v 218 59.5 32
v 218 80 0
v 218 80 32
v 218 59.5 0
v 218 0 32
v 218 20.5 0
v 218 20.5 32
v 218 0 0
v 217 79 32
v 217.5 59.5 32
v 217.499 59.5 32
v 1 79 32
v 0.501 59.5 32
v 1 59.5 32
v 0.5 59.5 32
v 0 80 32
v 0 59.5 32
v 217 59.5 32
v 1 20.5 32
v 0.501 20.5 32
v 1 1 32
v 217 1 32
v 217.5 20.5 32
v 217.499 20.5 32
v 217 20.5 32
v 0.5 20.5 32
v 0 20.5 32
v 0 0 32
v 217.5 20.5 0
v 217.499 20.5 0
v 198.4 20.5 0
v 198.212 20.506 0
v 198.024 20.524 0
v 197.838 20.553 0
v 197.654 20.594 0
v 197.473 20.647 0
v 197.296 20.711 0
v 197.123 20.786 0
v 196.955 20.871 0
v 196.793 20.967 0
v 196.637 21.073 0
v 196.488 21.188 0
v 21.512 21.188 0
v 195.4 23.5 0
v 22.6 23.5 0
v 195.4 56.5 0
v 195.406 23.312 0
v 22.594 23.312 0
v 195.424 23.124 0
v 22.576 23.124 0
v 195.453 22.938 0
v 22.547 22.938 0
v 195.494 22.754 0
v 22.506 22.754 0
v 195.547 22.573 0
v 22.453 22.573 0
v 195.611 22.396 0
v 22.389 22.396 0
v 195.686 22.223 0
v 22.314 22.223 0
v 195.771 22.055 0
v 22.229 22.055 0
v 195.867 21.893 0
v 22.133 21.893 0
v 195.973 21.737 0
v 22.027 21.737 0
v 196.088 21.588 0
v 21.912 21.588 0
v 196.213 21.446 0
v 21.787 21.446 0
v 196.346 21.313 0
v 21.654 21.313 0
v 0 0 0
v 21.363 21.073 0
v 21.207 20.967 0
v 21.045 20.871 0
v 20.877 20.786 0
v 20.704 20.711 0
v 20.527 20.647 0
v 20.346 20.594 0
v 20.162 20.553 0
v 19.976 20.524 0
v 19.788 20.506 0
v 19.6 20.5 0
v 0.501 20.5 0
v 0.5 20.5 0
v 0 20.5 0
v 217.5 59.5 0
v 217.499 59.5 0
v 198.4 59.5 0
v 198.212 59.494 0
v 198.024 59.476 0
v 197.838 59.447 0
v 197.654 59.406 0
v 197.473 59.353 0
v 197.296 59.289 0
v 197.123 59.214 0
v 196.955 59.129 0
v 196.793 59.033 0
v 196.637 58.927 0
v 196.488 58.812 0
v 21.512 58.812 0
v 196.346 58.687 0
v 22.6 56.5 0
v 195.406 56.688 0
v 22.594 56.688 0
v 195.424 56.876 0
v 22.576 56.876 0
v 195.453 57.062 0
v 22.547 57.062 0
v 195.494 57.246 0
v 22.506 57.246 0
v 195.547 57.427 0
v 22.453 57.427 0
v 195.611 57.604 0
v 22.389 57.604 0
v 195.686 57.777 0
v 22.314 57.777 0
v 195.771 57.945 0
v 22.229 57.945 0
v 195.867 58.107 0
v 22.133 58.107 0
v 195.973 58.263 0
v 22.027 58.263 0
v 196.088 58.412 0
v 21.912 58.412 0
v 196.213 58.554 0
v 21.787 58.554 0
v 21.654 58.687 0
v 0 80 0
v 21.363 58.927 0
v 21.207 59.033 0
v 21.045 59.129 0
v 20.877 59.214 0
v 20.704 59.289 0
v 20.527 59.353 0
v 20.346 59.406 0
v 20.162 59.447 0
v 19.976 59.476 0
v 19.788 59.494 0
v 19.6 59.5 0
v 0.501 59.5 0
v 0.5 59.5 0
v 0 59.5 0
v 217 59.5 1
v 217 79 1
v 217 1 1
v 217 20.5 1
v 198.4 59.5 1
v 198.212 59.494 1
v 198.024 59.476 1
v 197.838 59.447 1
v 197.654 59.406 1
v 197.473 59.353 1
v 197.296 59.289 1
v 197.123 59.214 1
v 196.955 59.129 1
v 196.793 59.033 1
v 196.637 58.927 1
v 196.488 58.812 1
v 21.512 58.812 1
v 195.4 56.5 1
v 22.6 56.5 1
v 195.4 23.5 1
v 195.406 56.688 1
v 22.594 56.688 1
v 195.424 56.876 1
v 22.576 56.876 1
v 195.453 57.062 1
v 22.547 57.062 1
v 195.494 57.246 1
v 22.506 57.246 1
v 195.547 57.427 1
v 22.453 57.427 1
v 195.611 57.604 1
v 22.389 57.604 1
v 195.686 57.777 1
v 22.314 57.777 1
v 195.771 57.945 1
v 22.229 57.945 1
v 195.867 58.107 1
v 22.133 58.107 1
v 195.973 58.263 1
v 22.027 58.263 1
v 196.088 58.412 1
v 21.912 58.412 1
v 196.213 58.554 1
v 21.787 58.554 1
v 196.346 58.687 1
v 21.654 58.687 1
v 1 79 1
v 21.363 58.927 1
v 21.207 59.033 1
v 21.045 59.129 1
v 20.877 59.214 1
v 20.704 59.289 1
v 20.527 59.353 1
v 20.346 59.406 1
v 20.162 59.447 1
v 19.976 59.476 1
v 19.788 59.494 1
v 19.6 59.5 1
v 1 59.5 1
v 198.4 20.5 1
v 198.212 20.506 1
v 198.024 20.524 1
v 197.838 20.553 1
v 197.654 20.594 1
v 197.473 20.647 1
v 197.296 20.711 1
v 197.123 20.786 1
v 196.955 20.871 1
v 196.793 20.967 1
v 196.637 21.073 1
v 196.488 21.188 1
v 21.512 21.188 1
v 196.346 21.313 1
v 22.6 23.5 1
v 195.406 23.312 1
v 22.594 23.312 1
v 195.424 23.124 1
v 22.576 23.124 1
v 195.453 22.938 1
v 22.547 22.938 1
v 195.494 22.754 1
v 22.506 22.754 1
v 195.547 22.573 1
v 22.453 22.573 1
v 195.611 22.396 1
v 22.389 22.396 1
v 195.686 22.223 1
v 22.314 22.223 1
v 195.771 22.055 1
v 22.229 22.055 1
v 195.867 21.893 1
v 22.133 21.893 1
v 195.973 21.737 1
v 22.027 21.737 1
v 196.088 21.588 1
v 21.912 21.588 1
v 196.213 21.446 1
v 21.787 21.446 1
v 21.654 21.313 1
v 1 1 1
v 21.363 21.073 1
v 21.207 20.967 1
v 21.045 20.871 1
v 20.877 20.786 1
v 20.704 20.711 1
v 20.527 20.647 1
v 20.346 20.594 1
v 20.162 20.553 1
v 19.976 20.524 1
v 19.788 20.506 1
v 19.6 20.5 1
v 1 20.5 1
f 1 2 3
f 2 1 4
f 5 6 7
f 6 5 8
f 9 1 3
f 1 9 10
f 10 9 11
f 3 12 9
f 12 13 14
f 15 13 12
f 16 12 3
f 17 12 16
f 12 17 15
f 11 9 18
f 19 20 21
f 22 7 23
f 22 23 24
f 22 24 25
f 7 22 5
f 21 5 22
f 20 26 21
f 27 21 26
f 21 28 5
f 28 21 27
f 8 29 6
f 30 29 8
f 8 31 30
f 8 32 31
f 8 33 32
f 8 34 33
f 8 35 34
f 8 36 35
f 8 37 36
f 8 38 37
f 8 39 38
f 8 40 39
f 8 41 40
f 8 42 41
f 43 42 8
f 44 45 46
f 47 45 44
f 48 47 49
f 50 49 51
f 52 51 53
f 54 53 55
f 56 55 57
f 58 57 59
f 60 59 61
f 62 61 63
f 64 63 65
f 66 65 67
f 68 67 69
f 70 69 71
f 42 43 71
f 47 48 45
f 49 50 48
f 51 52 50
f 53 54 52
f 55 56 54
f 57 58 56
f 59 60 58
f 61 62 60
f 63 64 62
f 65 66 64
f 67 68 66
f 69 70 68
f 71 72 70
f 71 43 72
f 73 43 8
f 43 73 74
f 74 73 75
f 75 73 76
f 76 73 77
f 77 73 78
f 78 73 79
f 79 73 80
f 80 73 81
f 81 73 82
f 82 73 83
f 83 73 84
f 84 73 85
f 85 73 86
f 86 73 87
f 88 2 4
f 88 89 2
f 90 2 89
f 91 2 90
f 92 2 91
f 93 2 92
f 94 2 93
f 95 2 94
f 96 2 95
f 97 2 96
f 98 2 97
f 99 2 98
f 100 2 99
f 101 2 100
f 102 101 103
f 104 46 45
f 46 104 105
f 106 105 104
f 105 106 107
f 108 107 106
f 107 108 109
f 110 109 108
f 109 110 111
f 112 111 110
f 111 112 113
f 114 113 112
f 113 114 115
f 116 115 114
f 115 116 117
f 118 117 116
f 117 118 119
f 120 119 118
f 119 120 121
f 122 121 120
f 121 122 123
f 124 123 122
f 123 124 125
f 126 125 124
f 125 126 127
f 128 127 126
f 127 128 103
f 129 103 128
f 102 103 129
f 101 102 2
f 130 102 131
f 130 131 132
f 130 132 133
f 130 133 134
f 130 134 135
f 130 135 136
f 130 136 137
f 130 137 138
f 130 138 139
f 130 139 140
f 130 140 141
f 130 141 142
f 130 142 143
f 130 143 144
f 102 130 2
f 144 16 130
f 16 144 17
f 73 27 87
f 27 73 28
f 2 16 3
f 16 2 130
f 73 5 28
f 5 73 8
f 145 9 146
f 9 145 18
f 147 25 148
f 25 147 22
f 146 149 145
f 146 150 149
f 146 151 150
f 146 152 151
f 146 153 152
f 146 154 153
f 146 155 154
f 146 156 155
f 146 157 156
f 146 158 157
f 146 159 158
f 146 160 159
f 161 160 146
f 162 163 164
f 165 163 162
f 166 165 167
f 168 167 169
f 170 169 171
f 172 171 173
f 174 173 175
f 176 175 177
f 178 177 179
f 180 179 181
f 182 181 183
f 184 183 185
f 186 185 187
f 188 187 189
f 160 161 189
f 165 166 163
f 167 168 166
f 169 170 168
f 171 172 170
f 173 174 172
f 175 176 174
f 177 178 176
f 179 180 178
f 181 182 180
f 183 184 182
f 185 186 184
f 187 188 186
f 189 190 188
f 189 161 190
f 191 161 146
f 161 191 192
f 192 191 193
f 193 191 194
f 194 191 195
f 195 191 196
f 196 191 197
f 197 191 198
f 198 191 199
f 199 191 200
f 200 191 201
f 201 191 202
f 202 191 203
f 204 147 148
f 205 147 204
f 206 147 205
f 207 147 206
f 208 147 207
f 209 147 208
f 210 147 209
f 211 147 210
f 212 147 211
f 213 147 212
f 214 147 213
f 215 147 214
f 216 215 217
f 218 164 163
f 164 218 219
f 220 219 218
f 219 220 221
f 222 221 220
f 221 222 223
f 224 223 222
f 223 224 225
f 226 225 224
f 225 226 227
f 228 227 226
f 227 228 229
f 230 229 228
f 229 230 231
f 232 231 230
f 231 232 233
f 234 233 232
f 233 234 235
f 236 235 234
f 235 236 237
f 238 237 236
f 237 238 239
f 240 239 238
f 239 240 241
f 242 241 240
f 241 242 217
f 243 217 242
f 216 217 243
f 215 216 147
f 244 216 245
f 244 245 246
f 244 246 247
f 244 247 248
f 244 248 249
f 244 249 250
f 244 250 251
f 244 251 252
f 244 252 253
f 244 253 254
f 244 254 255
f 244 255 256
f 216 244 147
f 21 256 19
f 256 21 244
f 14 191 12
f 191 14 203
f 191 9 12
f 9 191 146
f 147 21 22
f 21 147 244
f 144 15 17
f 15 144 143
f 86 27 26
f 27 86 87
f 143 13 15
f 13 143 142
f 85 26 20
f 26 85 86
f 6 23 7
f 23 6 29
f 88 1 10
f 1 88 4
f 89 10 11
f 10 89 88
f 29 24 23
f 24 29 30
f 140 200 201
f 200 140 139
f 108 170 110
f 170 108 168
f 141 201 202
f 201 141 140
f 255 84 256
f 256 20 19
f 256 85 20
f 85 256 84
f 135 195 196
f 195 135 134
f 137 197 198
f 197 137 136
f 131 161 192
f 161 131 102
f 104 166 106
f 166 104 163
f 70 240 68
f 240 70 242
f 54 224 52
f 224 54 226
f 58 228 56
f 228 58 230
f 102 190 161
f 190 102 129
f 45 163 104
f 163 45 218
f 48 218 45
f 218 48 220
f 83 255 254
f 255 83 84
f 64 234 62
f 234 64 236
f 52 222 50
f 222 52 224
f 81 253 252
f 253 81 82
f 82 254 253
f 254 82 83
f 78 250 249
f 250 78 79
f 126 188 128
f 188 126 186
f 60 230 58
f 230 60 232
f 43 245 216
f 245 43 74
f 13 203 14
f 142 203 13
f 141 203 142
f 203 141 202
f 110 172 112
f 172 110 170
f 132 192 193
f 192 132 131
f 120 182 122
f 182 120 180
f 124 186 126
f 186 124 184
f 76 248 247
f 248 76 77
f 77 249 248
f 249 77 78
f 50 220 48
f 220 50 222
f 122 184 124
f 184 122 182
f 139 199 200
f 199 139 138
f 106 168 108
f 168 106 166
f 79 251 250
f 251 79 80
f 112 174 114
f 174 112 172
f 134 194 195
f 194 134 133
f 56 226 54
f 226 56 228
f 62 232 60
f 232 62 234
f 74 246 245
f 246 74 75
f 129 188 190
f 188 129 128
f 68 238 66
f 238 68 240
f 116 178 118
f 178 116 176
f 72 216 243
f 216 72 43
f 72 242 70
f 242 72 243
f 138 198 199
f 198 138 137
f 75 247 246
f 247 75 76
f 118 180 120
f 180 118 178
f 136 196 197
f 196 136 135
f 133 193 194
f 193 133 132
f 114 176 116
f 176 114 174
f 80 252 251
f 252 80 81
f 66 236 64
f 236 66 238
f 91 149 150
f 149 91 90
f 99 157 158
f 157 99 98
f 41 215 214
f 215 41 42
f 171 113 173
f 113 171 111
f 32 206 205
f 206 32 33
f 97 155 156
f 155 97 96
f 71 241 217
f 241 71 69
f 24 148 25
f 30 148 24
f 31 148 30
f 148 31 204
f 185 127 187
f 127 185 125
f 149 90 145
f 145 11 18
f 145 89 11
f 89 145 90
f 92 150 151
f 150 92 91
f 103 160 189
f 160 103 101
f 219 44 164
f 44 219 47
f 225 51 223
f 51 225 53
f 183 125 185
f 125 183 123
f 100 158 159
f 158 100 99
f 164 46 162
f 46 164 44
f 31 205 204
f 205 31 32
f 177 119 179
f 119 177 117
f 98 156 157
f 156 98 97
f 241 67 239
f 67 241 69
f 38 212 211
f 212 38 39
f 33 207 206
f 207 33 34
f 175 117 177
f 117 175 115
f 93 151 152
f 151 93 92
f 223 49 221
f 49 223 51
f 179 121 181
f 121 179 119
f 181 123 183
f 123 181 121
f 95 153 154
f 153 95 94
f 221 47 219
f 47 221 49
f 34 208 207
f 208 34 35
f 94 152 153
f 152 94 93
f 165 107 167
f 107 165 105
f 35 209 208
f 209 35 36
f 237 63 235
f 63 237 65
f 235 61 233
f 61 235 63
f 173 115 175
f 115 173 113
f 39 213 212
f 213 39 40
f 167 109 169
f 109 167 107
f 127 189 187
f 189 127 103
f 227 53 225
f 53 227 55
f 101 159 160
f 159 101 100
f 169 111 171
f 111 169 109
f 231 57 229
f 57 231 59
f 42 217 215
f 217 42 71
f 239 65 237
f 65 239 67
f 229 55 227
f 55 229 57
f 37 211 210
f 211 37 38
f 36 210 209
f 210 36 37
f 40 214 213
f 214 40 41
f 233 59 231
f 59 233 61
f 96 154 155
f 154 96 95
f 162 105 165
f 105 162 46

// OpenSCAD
include <boardgame_insert_toolkit_lib.2.scad>;

// determines whether lids are output.
g_b_print_lid = true;

// determines whether boxes are output.
g_b_print_box = true; 

// Focus on one box
g_isolated_print_box = ""; 

// Used to visualize how all of the boxes fit together. 
g_b_visualization = false;          
        
// this is the outer wall thickness. 
//Default = 1.5mm
g_wall_thickness = 1.0;

// The tolerance value is extra space put between planes of the lid and box that fit together.
// Increase the tolerance to loosen the fit and decrease it to tighten it.
//
// Note that the tolerance is applied exclusively to the lid.
// So if the lid is too tight or too loose, change this value ( up for looser fit, down for tighter fit ) and 
// you only need to reprint the lid.
// 
// The exception is the stackable box, where the bottom of the box is the lid of the box below,
// in which case the tolerance also affects that box bottom.
//
g_tolerance = 0.15;

// This adjusts the position of the lid detents downward. 
// The larger the value, the bigger the gap between the lid and the box.
g_tolerance_detents_pos = 0.1;

aw_size_x = 218.0;
aw_size_y = 80.0;
aw_size_z = 32.0;


data =
  [
    [
      "simple box",
      [
        [ BOX_SIZE_XYZ, [aw_size_x, aw_size_y, aw_size_z] ],
        [ BOX_NO_LID_B, t],
        [
          BOX_COMPONENT,
          [
            [
              CMP_COMPARTMENT_SIZE_XYZ,
              [
                (aw_size_x - 2.0),
                (aw_size_y - 2.0),
                aw_size_z - g_wall_thickness
              ]
            ],
            [ CMP_NUM_COMPARTMENTS_XY, [1, 1] ],
            [ POSITION_XY, [0, 0] ],
            [ CMP_CUTOUT_SIDES_4B,   [f,f,t,t]],
            [ CMP_CUTOUT_DEPTH_PCT,  10],
            //[ CMP_CUTOUT_WIDTH_PCT,  50],
            //[ CMP_CUTOUT_HEIGHT_PCT, 100], 
            //[ CMP_SHAPE_ROTATED_B, t ],
            //[ CMP_SHAPE, FILLET ],
            //[ CMP_FILLET_RADIUS, 5.0 ],
          ]
        ],
      ]
    ]
  ];

MakeAll();
